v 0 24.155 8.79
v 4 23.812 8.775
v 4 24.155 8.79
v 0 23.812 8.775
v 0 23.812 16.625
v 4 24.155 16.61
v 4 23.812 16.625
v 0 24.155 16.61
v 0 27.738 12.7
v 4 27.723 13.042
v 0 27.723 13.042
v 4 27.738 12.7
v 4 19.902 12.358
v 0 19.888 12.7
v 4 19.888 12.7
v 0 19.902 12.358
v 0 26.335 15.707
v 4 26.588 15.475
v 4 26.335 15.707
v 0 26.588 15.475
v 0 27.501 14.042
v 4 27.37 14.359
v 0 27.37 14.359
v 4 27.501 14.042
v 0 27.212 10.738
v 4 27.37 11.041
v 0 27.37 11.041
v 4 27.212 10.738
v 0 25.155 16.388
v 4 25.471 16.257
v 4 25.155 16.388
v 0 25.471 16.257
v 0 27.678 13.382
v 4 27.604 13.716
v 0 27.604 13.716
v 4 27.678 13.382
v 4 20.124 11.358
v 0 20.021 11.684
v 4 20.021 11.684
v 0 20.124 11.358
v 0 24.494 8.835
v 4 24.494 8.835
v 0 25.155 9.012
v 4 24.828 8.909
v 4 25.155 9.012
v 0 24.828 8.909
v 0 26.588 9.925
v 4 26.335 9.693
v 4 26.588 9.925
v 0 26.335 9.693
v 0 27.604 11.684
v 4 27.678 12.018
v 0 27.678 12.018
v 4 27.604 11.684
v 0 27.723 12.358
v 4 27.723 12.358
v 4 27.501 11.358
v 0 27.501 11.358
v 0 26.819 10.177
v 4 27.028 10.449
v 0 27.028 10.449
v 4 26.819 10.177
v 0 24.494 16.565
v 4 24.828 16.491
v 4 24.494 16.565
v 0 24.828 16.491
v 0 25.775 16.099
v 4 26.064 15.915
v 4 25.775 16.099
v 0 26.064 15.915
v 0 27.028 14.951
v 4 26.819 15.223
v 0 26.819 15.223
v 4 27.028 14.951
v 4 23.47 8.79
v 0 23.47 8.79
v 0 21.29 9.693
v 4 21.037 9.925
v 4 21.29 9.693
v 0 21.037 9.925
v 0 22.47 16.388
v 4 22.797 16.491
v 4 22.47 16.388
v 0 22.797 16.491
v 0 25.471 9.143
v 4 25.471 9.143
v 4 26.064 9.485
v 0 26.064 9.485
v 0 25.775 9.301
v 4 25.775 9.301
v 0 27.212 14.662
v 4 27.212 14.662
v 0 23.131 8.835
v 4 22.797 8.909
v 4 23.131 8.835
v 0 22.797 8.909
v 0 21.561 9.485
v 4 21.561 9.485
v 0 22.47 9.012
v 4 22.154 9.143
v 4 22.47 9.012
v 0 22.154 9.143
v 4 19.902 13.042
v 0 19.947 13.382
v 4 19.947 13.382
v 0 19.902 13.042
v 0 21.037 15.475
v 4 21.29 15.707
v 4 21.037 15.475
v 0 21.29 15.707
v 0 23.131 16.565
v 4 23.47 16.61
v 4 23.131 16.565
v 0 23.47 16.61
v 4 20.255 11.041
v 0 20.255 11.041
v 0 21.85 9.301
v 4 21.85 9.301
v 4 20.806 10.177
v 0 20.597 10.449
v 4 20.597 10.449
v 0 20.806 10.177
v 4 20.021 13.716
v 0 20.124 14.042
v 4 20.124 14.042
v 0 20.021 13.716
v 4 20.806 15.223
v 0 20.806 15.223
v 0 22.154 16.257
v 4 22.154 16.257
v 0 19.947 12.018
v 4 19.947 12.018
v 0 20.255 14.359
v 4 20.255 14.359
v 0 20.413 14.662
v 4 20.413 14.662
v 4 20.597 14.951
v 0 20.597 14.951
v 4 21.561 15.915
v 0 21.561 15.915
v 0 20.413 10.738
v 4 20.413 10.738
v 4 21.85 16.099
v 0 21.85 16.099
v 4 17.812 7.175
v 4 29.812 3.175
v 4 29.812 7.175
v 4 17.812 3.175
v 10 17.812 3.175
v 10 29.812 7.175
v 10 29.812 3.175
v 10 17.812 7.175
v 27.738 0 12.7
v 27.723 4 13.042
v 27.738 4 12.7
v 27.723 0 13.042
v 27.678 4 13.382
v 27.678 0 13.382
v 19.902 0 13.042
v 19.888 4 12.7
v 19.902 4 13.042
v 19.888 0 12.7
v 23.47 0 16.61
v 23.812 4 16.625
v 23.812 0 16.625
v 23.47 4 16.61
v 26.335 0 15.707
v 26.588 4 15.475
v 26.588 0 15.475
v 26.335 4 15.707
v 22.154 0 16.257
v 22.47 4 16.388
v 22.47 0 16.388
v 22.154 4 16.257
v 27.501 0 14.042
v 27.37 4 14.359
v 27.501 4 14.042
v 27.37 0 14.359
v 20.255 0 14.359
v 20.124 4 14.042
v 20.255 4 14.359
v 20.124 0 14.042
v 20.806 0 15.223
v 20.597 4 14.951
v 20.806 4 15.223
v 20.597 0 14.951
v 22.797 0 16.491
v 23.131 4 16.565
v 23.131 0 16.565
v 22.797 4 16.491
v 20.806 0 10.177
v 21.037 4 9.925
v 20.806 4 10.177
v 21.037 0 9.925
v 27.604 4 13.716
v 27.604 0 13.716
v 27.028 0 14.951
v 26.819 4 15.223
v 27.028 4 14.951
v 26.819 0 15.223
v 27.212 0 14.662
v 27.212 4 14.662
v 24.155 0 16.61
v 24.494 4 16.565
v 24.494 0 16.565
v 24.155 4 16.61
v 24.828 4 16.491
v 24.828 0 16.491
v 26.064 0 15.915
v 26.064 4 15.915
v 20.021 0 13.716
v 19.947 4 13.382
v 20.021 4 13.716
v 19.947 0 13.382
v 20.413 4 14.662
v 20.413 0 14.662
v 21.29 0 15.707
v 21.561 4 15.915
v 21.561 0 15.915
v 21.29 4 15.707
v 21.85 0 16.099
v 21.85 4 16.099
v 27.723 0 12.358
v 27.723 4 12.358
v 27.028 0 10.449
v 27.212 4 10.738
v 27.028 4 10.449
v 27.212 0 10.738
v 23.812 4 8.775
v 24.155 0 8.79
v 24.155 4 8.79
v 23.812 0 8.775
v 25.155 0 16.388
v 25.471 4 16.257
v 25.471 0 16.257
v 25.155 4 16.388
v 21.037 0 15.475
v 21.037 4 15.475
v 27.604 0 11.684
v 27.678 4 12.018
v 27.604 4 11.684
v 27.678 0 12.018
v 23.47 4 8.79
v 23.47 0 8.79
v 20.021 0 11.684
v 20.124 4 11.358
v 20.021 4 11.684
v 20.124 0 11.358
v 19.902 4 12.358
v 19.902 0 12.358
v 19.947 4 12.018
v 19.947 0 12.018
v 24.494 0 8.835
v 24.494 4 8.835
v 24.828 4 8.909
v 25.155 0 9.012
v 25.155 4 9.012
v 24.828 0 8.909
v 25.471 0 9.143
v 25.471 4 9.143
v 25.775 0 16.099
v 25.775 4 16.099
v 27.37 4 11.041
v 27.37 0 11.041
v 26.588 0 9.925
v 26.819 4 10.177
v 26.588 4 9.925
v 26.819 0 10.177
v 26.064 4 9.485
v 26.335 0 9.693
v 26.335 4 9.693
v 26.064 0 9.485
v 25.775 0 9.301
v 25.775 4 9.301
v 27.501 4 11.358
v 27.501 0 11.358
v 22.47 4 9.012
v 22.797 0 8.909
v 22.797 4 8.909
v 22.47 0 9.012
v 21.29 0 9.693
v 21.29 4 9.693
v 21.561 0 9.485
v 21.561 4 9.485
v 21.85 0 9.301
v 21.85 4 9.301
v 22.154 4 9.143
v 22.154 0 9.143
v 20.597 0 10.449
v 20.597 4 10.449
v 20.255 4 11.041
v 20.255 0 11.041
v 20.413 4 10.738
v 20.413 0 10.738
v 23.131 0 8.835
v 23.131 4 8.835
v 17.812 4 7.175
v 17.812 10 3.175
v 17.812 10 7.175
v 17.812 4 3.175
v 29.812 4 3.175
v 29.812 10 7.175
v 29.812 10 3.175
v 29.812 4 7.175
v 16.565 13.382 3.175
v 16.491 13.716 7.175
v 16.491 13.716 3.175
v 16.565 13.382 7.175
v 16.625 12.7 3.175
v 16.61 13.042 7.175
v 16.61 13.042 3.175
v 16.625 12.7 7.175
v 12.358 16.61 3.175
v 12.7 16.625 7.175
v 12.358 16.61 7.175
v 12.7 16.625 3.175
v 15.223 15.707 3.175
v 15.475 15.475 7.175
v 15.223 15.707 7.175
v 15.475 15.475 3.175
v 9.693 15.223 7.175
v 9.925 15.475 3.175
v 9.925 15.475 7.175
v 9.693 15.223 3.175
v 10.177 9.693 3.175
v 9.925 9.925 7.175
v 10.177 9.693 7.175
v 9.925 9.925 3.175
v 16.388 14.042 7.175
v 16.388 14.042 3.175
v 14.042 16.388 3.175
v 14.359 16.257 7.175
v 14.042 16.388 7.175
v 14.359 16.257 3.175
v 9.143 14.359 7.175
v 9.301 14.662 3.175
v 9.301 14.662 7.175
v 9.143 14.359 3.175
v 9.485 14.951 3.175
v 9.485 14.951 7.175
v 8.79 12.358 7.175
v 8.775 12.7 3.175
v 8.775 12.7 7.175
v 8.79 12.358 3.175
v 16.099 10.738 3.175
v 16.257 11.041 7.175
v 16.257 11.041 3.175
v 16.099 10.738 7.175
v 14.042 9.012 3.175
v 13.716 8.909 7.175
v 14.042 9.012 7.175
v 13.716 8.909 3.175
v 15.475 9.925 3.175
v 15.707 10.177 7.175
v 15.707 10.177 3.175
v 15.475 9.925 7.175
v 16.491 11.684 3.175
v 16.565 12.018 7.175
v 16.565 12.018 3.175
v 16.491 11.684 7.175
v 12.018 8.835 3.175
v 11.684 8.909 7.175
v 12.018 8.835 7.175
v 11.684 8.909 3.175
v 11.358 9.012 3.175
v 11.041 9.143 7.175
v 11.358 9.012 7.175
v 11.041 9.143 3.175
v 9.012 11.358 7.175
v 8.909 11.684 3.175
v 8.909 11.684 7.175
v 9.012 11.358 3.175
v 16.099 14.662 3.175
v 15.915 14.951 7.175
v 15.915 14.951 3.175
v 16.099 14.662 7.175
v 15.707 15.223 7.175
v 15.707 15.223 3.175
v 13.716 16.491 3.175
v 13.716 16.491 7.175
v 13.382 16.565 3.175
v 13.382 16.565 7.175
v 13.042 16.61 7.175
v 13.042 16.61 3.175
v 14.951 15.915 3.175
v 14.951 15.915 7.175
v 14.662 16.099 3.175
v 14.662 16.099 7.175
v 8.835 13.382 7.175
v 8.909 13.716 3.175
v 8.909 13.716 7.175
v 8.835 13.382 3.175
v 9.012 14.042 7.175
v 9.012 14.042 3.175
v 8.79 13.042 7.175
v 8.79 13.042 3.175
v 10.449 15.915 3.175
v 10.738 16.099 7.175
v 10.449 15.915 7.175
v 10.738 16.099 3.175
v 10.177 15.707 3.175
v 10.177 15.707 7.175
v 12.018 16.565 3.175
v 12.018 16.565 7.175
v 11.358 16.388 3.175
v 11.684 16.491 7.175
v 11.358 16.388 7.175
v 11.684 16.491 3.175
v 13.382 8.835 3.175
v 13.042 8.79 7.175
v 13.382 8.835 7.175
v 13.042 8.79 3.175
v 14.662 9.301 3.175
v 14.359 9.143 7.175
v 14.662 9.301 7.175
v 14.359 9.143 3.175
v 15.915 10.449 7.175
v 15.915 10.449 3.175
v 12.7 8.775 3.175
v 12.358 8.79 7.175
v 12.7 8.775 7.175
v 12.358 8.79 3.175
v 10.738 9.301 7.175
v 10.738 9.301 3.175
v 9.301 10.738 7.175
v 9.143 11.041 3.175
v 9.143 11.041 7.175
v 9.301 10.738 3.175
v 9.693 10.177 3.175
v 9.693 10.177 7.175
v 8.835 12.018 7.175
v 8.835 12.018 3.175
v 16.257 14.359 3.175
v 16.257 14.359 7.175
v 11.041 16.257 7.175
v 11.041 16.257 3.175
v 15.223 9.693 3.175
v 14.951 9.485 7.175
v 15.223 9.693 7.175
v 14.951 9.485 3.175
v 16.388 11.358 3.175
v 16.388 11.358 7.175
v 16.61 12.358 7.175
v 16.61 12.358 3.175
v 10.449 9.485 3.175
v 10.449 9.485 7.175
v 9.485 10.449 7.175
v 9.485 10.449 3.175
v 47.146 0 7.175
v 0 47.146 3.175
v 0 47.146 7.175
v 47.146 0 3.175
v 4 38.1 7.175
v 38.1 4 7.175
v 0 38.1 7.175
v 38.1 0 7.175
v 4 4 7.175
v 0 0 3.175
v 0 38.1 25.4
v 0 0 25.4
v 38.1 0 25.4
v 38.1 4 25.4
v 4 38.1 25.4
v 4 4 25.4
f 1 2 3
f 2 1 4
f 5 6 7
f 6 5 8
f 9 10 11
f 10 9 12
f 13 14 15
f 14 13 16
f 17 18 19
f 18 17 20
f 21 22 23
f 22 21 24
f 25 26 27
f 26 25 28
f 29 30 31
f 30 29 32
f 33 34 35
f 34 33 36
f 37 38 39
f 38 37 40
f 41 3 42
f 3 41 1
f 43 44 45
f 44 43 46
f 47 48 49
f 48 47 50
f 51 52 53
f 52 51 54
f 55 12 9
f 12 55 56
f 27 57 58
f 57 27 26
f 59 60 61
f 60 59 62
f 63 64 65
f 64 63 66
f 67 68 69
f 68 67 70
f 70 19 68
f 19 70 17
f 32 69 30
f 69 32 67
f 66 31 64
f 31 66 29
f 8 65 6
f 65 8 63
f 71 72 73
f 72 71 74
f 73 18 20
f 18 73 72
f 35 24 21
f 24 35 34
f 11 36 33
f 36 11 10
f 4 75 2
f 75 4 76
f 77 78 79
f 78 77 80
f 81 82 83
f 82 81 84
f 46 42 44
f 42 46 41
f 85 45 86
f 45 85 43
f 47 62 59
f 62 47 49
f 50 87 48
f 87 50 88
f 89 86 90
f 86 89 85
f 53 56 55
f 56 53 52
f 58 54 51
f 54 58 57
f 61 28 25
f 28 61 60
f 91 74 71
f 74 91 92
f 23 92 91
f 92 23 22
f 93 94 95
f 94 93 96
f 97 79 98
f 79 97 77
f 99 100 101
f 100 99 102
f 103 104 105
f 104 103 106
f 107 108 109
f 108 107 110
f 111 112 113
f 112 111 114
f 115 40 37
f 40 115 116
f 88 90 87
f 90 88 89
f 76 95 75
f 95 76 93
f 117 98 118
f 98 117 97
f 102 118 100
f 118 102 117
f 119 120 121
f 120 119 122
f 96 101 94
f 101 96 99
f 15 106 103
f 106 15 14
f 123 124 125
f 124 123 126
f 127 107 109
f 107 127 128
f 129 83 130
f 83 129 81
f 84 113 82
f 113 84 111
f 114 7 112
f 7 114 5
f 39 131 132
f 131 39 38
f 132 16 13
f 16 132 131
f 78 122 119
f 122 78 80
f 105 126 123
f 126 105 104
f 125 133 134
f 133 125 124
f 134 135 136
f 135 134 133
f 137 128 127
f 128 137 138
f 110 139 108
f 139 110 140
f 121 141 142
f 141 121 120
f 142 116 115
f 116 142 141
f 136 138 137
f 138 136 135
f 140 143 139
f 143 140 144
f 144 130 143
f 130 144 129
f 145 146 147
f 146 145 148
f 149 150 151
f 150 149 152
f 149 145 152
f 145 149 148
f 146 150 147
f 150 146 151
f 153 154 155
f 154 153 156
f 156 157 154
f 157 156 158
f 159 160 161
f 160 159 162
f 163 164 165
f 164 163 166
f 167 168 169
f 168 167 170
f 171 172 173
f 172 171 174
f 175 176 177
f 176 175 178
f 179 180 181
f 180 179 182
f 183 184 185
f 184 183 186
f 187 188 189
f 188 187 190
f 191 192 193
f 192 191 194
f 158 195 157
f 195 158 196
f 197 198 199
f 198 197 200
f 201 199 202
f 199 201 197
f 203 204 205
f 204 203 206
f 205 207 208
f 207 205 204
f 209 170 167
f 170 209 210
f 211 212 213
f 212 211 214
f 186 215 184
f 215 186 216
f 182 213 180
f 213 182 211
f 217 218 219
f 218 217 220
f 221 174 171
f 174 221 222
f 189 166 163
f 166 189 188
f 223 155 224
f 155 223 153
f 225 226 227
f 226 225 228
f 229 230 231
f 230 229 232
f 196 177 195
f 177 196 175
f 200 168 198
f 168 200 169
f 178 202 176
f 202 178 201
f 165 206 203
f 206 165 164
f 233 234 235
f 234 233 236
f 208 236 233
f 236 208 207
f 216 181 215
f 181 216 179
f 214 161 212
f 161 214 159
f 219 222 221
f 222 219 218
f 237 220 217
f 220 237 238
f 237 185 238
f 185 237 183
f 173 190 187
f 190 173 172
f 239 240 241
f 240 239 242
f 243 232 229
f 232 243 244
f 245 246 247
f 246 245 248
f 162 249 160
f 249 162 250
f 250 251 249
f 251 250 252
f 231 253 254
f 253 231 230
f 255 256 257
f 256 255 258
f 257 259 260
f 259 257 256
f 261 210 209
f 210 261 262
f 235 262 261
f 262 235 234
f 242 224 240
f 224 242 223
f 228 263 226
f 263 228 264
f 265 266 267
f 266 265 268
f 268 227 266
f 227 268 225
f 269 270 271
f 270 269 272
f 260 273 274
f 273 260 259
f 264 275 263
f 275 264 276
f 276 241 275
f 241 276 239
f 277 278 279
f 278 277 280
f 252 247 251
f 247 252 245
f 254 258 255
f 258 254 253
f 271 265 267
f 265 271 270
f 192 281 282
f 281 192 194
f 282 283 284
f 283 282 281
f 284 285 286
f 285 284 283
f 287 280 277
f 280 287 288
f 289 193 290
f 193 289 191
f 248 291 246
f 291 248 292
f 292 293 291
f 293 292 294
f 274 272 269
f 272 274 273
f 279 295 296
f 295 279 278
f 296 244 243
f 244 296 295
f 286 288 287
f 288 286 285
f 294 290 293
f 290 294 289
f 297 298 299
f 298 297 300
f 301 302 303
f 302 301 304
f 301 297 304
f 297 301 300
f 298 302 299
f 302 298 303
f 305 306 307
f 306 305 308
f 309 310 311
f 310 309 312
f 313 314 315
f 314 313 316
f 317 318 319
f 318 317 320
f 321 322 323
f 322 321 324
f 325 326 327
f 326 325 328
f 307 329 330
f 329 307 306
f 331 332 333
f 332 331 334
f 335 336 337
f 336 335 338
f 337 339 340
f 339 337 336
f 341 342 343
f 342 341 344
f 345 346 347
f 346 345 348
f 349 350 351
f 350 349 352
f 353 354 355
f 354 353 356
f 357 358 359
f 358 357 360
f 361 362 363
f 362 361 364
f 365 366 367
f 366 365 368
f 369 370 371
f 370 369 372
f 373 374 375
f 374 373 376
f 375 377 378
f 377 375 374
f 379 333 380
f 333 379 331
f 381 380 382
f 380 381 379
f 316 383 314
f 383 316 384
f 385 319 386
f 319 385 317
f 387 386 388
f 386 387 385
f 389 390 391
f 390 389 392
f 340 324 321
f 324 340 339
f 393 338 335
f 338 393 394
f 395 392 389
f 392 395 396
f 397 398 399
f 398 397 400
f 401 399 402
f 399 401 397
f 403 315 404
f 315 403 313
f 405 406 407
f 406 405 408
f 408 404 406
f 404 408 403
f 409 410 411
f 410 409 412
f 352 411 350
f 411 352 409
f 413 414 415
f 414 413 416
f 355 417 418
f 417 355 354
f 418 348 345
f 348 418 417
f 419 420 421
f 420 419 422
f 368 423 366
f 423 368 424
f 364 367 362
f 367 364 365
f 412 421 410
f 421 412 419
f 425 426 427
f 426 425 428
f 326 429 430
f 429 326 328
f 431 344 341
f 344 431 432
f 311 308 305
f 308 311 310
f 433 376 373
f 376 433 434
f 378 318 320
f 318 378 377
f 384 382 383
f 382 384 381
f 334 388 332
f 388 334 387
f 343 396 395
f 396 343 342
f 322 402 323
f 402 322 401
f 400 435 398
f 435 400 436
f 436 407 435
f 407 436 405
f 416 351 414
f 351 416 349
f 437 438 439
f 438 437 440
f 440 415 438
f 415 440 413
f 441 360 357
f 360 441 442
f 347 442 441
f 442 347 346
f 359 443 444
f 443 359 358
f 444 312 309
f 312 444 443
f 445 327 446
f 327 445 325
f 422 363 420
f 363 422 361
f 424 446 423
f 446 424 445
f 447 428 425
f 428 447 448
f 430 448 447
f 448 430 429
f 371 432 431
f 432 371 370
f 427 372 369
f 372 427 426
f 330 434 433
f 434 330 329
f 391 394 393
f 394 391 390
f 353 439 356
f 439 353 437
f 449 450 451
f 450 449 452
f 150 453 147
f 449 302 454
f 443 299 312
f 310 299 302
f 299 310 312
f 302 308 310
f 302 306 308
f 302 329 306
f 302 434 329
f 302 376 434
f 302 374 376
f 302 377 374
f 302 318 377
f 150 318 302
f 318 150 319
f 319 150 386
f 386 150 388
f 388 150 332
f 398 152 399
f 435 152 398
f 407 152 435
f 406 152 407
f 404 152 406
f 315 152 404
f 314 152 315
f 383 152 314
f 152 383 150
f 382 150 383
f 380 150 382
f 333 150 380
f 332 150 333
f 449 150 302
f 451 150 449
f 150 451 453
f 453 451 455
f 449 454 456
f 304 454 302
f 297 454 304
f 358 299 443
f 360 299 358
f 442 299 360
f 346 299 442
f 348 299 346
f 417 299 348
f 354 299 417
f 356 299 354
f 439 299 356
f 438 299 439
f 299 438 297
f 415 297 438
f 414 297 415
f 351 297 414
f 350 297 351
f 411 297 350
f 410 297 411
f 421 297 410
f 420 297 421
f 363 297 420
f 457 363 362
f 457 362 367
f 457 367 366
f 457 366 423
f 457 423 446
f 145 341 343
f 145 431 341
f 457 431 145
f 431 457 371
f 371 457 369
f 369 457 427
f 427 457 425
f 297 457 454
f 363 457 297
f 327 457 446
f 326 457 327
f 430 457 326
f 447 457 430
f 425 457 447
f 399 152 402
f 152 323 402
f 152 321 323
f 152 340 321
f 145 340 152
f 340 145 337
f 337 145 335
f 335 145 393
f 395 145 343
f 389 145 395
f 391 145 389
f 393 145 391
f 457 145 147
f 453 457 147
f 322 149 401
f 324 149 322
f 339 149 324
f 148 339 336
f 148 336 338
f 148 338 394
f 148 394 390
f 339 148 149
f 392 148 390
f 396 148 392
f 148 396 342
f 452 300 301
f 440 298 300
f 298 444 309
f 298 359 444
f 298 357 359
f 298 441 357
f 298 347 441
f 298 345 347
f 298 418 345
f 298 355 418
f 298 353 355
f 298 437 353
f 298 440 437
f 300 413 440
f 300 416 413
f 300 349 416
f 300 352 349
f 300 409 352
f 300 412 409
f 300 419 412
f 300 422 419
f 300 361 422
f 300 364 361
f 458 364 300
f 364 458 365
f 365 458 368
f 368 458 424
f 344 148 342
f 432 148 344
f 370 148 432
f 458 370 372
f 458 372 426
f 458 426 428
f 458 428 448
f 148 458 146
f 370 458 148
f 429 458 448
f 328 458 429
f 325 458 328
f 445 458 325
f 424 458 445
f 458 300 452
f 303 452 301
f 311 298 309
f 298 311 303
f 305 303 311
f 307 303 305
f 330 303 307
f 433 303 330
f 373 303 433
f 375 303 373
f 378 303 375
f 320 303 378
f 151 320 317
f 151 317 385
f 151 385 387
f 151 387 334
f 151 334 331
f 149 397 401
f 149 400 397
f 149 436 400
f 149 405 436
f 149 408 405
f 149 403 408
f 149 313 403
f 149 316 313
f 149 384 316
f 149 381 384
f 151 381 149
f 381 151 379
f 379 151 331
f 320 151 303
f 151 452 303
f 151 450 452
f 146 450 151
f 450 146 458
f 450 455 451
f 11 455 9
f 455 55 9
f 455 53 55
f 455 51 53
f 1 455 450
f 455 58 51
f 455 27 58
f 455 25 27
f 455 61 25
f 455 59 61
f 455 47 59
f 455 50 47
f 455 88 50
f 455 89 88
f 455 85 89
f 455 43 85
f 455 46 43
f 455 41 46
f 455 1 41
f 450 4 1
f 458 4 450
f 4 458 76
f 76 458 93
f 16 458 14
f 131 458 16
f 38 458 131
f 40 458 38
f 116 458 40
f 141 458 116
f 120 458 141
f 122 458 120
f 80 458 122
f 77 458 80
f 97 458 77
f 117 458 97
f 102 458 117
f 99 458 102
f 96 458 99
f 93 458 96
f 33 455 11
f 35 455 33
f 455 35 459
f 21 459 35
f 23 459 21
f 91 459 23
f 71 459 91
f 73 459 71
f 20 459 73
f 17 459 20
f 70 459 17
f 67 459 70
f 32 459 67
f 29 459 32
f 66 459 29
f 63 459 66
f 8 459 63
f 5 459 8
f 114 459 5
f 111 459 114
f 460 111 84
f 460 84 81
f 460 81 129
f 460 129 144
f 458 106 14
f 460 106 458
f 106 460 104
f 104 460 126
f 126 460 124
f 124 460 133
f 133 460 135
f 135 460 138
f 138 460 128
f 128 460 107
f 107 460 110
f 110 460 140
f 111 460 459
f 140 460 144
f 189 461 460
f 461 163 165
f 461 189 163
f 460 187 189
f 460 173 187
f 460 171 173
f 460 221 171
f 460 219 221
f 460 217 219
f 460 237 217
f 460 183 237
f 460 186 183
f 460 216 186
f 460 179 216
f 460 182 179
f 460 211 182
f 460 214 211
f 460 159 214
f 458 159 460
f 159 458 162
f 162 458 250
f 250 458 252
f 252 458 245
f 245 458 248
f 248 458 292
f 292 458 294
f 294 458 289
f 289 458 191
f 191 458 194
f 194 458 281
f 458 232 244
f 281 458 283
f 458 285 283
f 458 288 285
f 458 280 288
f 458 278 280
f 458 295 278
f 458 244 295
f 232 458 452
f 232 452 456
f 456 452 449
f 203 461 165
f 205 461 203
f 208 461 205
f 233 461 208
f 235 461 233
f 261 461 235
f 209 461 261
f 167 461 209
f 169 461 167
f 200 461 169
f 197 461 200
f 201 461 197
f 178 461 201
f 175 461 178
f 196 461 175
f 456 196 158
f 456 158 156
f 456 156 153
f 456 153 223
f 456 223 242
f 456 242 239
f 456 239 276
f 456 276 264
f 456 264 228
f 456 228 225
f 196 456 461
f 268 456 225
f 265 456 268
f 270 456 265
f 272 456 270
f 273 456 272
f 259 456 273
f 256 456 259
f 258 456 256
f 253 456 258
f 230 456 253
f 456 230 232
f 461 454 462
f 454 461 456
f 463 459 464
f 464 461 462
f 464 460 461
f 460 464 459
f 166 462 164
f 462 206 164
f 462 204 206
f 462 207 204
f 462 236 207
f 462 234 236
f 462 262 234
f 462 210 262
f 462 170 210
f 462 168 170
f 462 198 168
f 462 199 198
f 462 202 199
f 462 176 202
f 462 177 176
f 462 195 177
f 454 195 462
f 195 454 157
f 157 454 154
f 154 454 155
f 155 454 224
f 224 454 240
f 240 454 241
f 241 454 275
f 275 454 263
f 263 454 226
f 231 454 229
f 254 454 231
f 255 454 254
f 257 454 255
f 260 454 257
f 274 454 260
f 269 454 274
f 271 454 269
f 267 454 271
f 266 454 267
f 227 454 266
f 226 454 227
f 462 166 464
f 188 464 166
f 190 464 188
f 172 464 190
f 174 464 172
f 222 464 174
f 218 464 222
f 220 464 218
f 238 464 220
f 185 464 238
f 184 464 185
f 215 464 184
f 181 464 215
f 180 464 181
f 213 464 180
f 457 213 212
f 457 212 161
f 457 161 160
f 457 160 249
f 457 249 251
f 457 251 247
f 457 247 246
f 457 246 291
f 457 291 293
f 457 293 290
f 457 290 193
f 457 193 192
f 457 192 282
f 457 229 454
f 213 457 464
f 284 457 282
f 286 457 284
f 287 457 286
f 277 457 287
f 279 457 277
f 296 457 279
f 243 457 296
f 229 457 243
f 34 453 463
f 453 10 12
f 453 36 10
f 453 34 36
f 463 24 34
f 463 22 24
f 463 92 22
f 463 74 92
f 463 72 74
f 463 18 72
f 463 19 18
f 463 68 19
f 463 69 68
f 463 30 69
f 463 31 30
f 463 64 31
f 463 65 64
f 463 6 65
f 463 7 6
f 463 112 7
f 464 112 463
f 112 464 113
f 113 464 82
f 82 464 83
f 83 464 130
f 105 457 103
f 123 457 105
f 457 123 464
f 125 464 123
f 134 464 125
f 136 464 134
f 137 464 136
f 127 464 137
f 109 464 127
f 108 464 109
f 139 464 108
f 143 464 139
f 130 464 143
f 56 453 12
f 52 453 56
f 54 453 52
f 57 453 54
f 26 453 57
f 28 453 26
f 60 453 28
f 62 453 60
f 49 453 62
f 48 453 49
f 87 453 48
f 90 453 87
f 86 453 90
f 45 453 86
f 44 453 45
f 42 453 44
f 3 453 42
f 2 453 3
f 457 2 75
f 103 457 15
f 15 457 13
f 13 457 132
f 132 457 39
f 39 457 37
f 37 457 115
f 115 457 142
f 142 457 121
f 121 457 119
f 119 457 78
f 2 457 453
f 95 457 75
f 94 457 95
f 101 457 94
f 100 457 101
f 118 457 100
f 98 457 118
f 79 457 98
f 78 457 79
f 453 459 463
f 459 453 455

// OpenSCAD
$fn = 72;

bracket();
//cube([100, 1, 25.4]);

module bracket(alumThickness=(1/8)*25.4, alumWidth=(1)*25.4, screwDiam=(1/4)*25.4+1.5, screwlength=(1)*25.4, thickness=4)
{
    cubeSide = alumWidth - alumThickness*2;
    
    difference()
    {
        // Bracket
        translate([0, 0, alumThickness])
        union()
        {
            // XY leg
            intersection()
            {
                translate([0, 0, thickness/2])
                rotate([0, 0, 45])
                cube([cubeSide*3.5, cubeSide*3.5, thickness], center=true);
                
                cube([cubeSide*4, cubeSide*4, thickness*4]);
            }
            // XZ leg
            translate([cubeSide, thickness/2, cubeSide/2 + alumThickness])
            rotate([90, 0, 0])
            cube([cubeSide*2, cubeSide, thickness], center=true);
            
            // YZ leg
            translate([thickness/2, cubeSide, cubeSide/2 + alumThickness])
            rotate([0, 90, 0])
            cube([cubeSide, cubeSide*2, thickness], center=true);
        }
        
        // Holes
        union()
        {
            translate([alumWidth/2, alumWidth/2, 0])
            rotate([0, 0, 0])
            cylinder(d=screwDiam, h=cubeSide*8, center=true);
            
            translate([cubeSide*1.25, 0, alumWidth/2])
            union()
            {
                rotate([90, 0, 0])
                cylinder(d=screwDiam, h=cubeSide*8, center=true);
                
                translate([0, thickness + 3, 0])
                cube([12, 6, 20], center=true);
            }
            
            translate([0, cubeSide*1.25, alumWidth/2])
            union()
            {
                rotate([0, 90, 0])
                cylinder(d=screwDiam, h=cubeSide*8, center=true);
                
                translate([thickness + 3, 0, 0])
                cube([6, 12, 20], center=true);
            }
        }
    }
}
